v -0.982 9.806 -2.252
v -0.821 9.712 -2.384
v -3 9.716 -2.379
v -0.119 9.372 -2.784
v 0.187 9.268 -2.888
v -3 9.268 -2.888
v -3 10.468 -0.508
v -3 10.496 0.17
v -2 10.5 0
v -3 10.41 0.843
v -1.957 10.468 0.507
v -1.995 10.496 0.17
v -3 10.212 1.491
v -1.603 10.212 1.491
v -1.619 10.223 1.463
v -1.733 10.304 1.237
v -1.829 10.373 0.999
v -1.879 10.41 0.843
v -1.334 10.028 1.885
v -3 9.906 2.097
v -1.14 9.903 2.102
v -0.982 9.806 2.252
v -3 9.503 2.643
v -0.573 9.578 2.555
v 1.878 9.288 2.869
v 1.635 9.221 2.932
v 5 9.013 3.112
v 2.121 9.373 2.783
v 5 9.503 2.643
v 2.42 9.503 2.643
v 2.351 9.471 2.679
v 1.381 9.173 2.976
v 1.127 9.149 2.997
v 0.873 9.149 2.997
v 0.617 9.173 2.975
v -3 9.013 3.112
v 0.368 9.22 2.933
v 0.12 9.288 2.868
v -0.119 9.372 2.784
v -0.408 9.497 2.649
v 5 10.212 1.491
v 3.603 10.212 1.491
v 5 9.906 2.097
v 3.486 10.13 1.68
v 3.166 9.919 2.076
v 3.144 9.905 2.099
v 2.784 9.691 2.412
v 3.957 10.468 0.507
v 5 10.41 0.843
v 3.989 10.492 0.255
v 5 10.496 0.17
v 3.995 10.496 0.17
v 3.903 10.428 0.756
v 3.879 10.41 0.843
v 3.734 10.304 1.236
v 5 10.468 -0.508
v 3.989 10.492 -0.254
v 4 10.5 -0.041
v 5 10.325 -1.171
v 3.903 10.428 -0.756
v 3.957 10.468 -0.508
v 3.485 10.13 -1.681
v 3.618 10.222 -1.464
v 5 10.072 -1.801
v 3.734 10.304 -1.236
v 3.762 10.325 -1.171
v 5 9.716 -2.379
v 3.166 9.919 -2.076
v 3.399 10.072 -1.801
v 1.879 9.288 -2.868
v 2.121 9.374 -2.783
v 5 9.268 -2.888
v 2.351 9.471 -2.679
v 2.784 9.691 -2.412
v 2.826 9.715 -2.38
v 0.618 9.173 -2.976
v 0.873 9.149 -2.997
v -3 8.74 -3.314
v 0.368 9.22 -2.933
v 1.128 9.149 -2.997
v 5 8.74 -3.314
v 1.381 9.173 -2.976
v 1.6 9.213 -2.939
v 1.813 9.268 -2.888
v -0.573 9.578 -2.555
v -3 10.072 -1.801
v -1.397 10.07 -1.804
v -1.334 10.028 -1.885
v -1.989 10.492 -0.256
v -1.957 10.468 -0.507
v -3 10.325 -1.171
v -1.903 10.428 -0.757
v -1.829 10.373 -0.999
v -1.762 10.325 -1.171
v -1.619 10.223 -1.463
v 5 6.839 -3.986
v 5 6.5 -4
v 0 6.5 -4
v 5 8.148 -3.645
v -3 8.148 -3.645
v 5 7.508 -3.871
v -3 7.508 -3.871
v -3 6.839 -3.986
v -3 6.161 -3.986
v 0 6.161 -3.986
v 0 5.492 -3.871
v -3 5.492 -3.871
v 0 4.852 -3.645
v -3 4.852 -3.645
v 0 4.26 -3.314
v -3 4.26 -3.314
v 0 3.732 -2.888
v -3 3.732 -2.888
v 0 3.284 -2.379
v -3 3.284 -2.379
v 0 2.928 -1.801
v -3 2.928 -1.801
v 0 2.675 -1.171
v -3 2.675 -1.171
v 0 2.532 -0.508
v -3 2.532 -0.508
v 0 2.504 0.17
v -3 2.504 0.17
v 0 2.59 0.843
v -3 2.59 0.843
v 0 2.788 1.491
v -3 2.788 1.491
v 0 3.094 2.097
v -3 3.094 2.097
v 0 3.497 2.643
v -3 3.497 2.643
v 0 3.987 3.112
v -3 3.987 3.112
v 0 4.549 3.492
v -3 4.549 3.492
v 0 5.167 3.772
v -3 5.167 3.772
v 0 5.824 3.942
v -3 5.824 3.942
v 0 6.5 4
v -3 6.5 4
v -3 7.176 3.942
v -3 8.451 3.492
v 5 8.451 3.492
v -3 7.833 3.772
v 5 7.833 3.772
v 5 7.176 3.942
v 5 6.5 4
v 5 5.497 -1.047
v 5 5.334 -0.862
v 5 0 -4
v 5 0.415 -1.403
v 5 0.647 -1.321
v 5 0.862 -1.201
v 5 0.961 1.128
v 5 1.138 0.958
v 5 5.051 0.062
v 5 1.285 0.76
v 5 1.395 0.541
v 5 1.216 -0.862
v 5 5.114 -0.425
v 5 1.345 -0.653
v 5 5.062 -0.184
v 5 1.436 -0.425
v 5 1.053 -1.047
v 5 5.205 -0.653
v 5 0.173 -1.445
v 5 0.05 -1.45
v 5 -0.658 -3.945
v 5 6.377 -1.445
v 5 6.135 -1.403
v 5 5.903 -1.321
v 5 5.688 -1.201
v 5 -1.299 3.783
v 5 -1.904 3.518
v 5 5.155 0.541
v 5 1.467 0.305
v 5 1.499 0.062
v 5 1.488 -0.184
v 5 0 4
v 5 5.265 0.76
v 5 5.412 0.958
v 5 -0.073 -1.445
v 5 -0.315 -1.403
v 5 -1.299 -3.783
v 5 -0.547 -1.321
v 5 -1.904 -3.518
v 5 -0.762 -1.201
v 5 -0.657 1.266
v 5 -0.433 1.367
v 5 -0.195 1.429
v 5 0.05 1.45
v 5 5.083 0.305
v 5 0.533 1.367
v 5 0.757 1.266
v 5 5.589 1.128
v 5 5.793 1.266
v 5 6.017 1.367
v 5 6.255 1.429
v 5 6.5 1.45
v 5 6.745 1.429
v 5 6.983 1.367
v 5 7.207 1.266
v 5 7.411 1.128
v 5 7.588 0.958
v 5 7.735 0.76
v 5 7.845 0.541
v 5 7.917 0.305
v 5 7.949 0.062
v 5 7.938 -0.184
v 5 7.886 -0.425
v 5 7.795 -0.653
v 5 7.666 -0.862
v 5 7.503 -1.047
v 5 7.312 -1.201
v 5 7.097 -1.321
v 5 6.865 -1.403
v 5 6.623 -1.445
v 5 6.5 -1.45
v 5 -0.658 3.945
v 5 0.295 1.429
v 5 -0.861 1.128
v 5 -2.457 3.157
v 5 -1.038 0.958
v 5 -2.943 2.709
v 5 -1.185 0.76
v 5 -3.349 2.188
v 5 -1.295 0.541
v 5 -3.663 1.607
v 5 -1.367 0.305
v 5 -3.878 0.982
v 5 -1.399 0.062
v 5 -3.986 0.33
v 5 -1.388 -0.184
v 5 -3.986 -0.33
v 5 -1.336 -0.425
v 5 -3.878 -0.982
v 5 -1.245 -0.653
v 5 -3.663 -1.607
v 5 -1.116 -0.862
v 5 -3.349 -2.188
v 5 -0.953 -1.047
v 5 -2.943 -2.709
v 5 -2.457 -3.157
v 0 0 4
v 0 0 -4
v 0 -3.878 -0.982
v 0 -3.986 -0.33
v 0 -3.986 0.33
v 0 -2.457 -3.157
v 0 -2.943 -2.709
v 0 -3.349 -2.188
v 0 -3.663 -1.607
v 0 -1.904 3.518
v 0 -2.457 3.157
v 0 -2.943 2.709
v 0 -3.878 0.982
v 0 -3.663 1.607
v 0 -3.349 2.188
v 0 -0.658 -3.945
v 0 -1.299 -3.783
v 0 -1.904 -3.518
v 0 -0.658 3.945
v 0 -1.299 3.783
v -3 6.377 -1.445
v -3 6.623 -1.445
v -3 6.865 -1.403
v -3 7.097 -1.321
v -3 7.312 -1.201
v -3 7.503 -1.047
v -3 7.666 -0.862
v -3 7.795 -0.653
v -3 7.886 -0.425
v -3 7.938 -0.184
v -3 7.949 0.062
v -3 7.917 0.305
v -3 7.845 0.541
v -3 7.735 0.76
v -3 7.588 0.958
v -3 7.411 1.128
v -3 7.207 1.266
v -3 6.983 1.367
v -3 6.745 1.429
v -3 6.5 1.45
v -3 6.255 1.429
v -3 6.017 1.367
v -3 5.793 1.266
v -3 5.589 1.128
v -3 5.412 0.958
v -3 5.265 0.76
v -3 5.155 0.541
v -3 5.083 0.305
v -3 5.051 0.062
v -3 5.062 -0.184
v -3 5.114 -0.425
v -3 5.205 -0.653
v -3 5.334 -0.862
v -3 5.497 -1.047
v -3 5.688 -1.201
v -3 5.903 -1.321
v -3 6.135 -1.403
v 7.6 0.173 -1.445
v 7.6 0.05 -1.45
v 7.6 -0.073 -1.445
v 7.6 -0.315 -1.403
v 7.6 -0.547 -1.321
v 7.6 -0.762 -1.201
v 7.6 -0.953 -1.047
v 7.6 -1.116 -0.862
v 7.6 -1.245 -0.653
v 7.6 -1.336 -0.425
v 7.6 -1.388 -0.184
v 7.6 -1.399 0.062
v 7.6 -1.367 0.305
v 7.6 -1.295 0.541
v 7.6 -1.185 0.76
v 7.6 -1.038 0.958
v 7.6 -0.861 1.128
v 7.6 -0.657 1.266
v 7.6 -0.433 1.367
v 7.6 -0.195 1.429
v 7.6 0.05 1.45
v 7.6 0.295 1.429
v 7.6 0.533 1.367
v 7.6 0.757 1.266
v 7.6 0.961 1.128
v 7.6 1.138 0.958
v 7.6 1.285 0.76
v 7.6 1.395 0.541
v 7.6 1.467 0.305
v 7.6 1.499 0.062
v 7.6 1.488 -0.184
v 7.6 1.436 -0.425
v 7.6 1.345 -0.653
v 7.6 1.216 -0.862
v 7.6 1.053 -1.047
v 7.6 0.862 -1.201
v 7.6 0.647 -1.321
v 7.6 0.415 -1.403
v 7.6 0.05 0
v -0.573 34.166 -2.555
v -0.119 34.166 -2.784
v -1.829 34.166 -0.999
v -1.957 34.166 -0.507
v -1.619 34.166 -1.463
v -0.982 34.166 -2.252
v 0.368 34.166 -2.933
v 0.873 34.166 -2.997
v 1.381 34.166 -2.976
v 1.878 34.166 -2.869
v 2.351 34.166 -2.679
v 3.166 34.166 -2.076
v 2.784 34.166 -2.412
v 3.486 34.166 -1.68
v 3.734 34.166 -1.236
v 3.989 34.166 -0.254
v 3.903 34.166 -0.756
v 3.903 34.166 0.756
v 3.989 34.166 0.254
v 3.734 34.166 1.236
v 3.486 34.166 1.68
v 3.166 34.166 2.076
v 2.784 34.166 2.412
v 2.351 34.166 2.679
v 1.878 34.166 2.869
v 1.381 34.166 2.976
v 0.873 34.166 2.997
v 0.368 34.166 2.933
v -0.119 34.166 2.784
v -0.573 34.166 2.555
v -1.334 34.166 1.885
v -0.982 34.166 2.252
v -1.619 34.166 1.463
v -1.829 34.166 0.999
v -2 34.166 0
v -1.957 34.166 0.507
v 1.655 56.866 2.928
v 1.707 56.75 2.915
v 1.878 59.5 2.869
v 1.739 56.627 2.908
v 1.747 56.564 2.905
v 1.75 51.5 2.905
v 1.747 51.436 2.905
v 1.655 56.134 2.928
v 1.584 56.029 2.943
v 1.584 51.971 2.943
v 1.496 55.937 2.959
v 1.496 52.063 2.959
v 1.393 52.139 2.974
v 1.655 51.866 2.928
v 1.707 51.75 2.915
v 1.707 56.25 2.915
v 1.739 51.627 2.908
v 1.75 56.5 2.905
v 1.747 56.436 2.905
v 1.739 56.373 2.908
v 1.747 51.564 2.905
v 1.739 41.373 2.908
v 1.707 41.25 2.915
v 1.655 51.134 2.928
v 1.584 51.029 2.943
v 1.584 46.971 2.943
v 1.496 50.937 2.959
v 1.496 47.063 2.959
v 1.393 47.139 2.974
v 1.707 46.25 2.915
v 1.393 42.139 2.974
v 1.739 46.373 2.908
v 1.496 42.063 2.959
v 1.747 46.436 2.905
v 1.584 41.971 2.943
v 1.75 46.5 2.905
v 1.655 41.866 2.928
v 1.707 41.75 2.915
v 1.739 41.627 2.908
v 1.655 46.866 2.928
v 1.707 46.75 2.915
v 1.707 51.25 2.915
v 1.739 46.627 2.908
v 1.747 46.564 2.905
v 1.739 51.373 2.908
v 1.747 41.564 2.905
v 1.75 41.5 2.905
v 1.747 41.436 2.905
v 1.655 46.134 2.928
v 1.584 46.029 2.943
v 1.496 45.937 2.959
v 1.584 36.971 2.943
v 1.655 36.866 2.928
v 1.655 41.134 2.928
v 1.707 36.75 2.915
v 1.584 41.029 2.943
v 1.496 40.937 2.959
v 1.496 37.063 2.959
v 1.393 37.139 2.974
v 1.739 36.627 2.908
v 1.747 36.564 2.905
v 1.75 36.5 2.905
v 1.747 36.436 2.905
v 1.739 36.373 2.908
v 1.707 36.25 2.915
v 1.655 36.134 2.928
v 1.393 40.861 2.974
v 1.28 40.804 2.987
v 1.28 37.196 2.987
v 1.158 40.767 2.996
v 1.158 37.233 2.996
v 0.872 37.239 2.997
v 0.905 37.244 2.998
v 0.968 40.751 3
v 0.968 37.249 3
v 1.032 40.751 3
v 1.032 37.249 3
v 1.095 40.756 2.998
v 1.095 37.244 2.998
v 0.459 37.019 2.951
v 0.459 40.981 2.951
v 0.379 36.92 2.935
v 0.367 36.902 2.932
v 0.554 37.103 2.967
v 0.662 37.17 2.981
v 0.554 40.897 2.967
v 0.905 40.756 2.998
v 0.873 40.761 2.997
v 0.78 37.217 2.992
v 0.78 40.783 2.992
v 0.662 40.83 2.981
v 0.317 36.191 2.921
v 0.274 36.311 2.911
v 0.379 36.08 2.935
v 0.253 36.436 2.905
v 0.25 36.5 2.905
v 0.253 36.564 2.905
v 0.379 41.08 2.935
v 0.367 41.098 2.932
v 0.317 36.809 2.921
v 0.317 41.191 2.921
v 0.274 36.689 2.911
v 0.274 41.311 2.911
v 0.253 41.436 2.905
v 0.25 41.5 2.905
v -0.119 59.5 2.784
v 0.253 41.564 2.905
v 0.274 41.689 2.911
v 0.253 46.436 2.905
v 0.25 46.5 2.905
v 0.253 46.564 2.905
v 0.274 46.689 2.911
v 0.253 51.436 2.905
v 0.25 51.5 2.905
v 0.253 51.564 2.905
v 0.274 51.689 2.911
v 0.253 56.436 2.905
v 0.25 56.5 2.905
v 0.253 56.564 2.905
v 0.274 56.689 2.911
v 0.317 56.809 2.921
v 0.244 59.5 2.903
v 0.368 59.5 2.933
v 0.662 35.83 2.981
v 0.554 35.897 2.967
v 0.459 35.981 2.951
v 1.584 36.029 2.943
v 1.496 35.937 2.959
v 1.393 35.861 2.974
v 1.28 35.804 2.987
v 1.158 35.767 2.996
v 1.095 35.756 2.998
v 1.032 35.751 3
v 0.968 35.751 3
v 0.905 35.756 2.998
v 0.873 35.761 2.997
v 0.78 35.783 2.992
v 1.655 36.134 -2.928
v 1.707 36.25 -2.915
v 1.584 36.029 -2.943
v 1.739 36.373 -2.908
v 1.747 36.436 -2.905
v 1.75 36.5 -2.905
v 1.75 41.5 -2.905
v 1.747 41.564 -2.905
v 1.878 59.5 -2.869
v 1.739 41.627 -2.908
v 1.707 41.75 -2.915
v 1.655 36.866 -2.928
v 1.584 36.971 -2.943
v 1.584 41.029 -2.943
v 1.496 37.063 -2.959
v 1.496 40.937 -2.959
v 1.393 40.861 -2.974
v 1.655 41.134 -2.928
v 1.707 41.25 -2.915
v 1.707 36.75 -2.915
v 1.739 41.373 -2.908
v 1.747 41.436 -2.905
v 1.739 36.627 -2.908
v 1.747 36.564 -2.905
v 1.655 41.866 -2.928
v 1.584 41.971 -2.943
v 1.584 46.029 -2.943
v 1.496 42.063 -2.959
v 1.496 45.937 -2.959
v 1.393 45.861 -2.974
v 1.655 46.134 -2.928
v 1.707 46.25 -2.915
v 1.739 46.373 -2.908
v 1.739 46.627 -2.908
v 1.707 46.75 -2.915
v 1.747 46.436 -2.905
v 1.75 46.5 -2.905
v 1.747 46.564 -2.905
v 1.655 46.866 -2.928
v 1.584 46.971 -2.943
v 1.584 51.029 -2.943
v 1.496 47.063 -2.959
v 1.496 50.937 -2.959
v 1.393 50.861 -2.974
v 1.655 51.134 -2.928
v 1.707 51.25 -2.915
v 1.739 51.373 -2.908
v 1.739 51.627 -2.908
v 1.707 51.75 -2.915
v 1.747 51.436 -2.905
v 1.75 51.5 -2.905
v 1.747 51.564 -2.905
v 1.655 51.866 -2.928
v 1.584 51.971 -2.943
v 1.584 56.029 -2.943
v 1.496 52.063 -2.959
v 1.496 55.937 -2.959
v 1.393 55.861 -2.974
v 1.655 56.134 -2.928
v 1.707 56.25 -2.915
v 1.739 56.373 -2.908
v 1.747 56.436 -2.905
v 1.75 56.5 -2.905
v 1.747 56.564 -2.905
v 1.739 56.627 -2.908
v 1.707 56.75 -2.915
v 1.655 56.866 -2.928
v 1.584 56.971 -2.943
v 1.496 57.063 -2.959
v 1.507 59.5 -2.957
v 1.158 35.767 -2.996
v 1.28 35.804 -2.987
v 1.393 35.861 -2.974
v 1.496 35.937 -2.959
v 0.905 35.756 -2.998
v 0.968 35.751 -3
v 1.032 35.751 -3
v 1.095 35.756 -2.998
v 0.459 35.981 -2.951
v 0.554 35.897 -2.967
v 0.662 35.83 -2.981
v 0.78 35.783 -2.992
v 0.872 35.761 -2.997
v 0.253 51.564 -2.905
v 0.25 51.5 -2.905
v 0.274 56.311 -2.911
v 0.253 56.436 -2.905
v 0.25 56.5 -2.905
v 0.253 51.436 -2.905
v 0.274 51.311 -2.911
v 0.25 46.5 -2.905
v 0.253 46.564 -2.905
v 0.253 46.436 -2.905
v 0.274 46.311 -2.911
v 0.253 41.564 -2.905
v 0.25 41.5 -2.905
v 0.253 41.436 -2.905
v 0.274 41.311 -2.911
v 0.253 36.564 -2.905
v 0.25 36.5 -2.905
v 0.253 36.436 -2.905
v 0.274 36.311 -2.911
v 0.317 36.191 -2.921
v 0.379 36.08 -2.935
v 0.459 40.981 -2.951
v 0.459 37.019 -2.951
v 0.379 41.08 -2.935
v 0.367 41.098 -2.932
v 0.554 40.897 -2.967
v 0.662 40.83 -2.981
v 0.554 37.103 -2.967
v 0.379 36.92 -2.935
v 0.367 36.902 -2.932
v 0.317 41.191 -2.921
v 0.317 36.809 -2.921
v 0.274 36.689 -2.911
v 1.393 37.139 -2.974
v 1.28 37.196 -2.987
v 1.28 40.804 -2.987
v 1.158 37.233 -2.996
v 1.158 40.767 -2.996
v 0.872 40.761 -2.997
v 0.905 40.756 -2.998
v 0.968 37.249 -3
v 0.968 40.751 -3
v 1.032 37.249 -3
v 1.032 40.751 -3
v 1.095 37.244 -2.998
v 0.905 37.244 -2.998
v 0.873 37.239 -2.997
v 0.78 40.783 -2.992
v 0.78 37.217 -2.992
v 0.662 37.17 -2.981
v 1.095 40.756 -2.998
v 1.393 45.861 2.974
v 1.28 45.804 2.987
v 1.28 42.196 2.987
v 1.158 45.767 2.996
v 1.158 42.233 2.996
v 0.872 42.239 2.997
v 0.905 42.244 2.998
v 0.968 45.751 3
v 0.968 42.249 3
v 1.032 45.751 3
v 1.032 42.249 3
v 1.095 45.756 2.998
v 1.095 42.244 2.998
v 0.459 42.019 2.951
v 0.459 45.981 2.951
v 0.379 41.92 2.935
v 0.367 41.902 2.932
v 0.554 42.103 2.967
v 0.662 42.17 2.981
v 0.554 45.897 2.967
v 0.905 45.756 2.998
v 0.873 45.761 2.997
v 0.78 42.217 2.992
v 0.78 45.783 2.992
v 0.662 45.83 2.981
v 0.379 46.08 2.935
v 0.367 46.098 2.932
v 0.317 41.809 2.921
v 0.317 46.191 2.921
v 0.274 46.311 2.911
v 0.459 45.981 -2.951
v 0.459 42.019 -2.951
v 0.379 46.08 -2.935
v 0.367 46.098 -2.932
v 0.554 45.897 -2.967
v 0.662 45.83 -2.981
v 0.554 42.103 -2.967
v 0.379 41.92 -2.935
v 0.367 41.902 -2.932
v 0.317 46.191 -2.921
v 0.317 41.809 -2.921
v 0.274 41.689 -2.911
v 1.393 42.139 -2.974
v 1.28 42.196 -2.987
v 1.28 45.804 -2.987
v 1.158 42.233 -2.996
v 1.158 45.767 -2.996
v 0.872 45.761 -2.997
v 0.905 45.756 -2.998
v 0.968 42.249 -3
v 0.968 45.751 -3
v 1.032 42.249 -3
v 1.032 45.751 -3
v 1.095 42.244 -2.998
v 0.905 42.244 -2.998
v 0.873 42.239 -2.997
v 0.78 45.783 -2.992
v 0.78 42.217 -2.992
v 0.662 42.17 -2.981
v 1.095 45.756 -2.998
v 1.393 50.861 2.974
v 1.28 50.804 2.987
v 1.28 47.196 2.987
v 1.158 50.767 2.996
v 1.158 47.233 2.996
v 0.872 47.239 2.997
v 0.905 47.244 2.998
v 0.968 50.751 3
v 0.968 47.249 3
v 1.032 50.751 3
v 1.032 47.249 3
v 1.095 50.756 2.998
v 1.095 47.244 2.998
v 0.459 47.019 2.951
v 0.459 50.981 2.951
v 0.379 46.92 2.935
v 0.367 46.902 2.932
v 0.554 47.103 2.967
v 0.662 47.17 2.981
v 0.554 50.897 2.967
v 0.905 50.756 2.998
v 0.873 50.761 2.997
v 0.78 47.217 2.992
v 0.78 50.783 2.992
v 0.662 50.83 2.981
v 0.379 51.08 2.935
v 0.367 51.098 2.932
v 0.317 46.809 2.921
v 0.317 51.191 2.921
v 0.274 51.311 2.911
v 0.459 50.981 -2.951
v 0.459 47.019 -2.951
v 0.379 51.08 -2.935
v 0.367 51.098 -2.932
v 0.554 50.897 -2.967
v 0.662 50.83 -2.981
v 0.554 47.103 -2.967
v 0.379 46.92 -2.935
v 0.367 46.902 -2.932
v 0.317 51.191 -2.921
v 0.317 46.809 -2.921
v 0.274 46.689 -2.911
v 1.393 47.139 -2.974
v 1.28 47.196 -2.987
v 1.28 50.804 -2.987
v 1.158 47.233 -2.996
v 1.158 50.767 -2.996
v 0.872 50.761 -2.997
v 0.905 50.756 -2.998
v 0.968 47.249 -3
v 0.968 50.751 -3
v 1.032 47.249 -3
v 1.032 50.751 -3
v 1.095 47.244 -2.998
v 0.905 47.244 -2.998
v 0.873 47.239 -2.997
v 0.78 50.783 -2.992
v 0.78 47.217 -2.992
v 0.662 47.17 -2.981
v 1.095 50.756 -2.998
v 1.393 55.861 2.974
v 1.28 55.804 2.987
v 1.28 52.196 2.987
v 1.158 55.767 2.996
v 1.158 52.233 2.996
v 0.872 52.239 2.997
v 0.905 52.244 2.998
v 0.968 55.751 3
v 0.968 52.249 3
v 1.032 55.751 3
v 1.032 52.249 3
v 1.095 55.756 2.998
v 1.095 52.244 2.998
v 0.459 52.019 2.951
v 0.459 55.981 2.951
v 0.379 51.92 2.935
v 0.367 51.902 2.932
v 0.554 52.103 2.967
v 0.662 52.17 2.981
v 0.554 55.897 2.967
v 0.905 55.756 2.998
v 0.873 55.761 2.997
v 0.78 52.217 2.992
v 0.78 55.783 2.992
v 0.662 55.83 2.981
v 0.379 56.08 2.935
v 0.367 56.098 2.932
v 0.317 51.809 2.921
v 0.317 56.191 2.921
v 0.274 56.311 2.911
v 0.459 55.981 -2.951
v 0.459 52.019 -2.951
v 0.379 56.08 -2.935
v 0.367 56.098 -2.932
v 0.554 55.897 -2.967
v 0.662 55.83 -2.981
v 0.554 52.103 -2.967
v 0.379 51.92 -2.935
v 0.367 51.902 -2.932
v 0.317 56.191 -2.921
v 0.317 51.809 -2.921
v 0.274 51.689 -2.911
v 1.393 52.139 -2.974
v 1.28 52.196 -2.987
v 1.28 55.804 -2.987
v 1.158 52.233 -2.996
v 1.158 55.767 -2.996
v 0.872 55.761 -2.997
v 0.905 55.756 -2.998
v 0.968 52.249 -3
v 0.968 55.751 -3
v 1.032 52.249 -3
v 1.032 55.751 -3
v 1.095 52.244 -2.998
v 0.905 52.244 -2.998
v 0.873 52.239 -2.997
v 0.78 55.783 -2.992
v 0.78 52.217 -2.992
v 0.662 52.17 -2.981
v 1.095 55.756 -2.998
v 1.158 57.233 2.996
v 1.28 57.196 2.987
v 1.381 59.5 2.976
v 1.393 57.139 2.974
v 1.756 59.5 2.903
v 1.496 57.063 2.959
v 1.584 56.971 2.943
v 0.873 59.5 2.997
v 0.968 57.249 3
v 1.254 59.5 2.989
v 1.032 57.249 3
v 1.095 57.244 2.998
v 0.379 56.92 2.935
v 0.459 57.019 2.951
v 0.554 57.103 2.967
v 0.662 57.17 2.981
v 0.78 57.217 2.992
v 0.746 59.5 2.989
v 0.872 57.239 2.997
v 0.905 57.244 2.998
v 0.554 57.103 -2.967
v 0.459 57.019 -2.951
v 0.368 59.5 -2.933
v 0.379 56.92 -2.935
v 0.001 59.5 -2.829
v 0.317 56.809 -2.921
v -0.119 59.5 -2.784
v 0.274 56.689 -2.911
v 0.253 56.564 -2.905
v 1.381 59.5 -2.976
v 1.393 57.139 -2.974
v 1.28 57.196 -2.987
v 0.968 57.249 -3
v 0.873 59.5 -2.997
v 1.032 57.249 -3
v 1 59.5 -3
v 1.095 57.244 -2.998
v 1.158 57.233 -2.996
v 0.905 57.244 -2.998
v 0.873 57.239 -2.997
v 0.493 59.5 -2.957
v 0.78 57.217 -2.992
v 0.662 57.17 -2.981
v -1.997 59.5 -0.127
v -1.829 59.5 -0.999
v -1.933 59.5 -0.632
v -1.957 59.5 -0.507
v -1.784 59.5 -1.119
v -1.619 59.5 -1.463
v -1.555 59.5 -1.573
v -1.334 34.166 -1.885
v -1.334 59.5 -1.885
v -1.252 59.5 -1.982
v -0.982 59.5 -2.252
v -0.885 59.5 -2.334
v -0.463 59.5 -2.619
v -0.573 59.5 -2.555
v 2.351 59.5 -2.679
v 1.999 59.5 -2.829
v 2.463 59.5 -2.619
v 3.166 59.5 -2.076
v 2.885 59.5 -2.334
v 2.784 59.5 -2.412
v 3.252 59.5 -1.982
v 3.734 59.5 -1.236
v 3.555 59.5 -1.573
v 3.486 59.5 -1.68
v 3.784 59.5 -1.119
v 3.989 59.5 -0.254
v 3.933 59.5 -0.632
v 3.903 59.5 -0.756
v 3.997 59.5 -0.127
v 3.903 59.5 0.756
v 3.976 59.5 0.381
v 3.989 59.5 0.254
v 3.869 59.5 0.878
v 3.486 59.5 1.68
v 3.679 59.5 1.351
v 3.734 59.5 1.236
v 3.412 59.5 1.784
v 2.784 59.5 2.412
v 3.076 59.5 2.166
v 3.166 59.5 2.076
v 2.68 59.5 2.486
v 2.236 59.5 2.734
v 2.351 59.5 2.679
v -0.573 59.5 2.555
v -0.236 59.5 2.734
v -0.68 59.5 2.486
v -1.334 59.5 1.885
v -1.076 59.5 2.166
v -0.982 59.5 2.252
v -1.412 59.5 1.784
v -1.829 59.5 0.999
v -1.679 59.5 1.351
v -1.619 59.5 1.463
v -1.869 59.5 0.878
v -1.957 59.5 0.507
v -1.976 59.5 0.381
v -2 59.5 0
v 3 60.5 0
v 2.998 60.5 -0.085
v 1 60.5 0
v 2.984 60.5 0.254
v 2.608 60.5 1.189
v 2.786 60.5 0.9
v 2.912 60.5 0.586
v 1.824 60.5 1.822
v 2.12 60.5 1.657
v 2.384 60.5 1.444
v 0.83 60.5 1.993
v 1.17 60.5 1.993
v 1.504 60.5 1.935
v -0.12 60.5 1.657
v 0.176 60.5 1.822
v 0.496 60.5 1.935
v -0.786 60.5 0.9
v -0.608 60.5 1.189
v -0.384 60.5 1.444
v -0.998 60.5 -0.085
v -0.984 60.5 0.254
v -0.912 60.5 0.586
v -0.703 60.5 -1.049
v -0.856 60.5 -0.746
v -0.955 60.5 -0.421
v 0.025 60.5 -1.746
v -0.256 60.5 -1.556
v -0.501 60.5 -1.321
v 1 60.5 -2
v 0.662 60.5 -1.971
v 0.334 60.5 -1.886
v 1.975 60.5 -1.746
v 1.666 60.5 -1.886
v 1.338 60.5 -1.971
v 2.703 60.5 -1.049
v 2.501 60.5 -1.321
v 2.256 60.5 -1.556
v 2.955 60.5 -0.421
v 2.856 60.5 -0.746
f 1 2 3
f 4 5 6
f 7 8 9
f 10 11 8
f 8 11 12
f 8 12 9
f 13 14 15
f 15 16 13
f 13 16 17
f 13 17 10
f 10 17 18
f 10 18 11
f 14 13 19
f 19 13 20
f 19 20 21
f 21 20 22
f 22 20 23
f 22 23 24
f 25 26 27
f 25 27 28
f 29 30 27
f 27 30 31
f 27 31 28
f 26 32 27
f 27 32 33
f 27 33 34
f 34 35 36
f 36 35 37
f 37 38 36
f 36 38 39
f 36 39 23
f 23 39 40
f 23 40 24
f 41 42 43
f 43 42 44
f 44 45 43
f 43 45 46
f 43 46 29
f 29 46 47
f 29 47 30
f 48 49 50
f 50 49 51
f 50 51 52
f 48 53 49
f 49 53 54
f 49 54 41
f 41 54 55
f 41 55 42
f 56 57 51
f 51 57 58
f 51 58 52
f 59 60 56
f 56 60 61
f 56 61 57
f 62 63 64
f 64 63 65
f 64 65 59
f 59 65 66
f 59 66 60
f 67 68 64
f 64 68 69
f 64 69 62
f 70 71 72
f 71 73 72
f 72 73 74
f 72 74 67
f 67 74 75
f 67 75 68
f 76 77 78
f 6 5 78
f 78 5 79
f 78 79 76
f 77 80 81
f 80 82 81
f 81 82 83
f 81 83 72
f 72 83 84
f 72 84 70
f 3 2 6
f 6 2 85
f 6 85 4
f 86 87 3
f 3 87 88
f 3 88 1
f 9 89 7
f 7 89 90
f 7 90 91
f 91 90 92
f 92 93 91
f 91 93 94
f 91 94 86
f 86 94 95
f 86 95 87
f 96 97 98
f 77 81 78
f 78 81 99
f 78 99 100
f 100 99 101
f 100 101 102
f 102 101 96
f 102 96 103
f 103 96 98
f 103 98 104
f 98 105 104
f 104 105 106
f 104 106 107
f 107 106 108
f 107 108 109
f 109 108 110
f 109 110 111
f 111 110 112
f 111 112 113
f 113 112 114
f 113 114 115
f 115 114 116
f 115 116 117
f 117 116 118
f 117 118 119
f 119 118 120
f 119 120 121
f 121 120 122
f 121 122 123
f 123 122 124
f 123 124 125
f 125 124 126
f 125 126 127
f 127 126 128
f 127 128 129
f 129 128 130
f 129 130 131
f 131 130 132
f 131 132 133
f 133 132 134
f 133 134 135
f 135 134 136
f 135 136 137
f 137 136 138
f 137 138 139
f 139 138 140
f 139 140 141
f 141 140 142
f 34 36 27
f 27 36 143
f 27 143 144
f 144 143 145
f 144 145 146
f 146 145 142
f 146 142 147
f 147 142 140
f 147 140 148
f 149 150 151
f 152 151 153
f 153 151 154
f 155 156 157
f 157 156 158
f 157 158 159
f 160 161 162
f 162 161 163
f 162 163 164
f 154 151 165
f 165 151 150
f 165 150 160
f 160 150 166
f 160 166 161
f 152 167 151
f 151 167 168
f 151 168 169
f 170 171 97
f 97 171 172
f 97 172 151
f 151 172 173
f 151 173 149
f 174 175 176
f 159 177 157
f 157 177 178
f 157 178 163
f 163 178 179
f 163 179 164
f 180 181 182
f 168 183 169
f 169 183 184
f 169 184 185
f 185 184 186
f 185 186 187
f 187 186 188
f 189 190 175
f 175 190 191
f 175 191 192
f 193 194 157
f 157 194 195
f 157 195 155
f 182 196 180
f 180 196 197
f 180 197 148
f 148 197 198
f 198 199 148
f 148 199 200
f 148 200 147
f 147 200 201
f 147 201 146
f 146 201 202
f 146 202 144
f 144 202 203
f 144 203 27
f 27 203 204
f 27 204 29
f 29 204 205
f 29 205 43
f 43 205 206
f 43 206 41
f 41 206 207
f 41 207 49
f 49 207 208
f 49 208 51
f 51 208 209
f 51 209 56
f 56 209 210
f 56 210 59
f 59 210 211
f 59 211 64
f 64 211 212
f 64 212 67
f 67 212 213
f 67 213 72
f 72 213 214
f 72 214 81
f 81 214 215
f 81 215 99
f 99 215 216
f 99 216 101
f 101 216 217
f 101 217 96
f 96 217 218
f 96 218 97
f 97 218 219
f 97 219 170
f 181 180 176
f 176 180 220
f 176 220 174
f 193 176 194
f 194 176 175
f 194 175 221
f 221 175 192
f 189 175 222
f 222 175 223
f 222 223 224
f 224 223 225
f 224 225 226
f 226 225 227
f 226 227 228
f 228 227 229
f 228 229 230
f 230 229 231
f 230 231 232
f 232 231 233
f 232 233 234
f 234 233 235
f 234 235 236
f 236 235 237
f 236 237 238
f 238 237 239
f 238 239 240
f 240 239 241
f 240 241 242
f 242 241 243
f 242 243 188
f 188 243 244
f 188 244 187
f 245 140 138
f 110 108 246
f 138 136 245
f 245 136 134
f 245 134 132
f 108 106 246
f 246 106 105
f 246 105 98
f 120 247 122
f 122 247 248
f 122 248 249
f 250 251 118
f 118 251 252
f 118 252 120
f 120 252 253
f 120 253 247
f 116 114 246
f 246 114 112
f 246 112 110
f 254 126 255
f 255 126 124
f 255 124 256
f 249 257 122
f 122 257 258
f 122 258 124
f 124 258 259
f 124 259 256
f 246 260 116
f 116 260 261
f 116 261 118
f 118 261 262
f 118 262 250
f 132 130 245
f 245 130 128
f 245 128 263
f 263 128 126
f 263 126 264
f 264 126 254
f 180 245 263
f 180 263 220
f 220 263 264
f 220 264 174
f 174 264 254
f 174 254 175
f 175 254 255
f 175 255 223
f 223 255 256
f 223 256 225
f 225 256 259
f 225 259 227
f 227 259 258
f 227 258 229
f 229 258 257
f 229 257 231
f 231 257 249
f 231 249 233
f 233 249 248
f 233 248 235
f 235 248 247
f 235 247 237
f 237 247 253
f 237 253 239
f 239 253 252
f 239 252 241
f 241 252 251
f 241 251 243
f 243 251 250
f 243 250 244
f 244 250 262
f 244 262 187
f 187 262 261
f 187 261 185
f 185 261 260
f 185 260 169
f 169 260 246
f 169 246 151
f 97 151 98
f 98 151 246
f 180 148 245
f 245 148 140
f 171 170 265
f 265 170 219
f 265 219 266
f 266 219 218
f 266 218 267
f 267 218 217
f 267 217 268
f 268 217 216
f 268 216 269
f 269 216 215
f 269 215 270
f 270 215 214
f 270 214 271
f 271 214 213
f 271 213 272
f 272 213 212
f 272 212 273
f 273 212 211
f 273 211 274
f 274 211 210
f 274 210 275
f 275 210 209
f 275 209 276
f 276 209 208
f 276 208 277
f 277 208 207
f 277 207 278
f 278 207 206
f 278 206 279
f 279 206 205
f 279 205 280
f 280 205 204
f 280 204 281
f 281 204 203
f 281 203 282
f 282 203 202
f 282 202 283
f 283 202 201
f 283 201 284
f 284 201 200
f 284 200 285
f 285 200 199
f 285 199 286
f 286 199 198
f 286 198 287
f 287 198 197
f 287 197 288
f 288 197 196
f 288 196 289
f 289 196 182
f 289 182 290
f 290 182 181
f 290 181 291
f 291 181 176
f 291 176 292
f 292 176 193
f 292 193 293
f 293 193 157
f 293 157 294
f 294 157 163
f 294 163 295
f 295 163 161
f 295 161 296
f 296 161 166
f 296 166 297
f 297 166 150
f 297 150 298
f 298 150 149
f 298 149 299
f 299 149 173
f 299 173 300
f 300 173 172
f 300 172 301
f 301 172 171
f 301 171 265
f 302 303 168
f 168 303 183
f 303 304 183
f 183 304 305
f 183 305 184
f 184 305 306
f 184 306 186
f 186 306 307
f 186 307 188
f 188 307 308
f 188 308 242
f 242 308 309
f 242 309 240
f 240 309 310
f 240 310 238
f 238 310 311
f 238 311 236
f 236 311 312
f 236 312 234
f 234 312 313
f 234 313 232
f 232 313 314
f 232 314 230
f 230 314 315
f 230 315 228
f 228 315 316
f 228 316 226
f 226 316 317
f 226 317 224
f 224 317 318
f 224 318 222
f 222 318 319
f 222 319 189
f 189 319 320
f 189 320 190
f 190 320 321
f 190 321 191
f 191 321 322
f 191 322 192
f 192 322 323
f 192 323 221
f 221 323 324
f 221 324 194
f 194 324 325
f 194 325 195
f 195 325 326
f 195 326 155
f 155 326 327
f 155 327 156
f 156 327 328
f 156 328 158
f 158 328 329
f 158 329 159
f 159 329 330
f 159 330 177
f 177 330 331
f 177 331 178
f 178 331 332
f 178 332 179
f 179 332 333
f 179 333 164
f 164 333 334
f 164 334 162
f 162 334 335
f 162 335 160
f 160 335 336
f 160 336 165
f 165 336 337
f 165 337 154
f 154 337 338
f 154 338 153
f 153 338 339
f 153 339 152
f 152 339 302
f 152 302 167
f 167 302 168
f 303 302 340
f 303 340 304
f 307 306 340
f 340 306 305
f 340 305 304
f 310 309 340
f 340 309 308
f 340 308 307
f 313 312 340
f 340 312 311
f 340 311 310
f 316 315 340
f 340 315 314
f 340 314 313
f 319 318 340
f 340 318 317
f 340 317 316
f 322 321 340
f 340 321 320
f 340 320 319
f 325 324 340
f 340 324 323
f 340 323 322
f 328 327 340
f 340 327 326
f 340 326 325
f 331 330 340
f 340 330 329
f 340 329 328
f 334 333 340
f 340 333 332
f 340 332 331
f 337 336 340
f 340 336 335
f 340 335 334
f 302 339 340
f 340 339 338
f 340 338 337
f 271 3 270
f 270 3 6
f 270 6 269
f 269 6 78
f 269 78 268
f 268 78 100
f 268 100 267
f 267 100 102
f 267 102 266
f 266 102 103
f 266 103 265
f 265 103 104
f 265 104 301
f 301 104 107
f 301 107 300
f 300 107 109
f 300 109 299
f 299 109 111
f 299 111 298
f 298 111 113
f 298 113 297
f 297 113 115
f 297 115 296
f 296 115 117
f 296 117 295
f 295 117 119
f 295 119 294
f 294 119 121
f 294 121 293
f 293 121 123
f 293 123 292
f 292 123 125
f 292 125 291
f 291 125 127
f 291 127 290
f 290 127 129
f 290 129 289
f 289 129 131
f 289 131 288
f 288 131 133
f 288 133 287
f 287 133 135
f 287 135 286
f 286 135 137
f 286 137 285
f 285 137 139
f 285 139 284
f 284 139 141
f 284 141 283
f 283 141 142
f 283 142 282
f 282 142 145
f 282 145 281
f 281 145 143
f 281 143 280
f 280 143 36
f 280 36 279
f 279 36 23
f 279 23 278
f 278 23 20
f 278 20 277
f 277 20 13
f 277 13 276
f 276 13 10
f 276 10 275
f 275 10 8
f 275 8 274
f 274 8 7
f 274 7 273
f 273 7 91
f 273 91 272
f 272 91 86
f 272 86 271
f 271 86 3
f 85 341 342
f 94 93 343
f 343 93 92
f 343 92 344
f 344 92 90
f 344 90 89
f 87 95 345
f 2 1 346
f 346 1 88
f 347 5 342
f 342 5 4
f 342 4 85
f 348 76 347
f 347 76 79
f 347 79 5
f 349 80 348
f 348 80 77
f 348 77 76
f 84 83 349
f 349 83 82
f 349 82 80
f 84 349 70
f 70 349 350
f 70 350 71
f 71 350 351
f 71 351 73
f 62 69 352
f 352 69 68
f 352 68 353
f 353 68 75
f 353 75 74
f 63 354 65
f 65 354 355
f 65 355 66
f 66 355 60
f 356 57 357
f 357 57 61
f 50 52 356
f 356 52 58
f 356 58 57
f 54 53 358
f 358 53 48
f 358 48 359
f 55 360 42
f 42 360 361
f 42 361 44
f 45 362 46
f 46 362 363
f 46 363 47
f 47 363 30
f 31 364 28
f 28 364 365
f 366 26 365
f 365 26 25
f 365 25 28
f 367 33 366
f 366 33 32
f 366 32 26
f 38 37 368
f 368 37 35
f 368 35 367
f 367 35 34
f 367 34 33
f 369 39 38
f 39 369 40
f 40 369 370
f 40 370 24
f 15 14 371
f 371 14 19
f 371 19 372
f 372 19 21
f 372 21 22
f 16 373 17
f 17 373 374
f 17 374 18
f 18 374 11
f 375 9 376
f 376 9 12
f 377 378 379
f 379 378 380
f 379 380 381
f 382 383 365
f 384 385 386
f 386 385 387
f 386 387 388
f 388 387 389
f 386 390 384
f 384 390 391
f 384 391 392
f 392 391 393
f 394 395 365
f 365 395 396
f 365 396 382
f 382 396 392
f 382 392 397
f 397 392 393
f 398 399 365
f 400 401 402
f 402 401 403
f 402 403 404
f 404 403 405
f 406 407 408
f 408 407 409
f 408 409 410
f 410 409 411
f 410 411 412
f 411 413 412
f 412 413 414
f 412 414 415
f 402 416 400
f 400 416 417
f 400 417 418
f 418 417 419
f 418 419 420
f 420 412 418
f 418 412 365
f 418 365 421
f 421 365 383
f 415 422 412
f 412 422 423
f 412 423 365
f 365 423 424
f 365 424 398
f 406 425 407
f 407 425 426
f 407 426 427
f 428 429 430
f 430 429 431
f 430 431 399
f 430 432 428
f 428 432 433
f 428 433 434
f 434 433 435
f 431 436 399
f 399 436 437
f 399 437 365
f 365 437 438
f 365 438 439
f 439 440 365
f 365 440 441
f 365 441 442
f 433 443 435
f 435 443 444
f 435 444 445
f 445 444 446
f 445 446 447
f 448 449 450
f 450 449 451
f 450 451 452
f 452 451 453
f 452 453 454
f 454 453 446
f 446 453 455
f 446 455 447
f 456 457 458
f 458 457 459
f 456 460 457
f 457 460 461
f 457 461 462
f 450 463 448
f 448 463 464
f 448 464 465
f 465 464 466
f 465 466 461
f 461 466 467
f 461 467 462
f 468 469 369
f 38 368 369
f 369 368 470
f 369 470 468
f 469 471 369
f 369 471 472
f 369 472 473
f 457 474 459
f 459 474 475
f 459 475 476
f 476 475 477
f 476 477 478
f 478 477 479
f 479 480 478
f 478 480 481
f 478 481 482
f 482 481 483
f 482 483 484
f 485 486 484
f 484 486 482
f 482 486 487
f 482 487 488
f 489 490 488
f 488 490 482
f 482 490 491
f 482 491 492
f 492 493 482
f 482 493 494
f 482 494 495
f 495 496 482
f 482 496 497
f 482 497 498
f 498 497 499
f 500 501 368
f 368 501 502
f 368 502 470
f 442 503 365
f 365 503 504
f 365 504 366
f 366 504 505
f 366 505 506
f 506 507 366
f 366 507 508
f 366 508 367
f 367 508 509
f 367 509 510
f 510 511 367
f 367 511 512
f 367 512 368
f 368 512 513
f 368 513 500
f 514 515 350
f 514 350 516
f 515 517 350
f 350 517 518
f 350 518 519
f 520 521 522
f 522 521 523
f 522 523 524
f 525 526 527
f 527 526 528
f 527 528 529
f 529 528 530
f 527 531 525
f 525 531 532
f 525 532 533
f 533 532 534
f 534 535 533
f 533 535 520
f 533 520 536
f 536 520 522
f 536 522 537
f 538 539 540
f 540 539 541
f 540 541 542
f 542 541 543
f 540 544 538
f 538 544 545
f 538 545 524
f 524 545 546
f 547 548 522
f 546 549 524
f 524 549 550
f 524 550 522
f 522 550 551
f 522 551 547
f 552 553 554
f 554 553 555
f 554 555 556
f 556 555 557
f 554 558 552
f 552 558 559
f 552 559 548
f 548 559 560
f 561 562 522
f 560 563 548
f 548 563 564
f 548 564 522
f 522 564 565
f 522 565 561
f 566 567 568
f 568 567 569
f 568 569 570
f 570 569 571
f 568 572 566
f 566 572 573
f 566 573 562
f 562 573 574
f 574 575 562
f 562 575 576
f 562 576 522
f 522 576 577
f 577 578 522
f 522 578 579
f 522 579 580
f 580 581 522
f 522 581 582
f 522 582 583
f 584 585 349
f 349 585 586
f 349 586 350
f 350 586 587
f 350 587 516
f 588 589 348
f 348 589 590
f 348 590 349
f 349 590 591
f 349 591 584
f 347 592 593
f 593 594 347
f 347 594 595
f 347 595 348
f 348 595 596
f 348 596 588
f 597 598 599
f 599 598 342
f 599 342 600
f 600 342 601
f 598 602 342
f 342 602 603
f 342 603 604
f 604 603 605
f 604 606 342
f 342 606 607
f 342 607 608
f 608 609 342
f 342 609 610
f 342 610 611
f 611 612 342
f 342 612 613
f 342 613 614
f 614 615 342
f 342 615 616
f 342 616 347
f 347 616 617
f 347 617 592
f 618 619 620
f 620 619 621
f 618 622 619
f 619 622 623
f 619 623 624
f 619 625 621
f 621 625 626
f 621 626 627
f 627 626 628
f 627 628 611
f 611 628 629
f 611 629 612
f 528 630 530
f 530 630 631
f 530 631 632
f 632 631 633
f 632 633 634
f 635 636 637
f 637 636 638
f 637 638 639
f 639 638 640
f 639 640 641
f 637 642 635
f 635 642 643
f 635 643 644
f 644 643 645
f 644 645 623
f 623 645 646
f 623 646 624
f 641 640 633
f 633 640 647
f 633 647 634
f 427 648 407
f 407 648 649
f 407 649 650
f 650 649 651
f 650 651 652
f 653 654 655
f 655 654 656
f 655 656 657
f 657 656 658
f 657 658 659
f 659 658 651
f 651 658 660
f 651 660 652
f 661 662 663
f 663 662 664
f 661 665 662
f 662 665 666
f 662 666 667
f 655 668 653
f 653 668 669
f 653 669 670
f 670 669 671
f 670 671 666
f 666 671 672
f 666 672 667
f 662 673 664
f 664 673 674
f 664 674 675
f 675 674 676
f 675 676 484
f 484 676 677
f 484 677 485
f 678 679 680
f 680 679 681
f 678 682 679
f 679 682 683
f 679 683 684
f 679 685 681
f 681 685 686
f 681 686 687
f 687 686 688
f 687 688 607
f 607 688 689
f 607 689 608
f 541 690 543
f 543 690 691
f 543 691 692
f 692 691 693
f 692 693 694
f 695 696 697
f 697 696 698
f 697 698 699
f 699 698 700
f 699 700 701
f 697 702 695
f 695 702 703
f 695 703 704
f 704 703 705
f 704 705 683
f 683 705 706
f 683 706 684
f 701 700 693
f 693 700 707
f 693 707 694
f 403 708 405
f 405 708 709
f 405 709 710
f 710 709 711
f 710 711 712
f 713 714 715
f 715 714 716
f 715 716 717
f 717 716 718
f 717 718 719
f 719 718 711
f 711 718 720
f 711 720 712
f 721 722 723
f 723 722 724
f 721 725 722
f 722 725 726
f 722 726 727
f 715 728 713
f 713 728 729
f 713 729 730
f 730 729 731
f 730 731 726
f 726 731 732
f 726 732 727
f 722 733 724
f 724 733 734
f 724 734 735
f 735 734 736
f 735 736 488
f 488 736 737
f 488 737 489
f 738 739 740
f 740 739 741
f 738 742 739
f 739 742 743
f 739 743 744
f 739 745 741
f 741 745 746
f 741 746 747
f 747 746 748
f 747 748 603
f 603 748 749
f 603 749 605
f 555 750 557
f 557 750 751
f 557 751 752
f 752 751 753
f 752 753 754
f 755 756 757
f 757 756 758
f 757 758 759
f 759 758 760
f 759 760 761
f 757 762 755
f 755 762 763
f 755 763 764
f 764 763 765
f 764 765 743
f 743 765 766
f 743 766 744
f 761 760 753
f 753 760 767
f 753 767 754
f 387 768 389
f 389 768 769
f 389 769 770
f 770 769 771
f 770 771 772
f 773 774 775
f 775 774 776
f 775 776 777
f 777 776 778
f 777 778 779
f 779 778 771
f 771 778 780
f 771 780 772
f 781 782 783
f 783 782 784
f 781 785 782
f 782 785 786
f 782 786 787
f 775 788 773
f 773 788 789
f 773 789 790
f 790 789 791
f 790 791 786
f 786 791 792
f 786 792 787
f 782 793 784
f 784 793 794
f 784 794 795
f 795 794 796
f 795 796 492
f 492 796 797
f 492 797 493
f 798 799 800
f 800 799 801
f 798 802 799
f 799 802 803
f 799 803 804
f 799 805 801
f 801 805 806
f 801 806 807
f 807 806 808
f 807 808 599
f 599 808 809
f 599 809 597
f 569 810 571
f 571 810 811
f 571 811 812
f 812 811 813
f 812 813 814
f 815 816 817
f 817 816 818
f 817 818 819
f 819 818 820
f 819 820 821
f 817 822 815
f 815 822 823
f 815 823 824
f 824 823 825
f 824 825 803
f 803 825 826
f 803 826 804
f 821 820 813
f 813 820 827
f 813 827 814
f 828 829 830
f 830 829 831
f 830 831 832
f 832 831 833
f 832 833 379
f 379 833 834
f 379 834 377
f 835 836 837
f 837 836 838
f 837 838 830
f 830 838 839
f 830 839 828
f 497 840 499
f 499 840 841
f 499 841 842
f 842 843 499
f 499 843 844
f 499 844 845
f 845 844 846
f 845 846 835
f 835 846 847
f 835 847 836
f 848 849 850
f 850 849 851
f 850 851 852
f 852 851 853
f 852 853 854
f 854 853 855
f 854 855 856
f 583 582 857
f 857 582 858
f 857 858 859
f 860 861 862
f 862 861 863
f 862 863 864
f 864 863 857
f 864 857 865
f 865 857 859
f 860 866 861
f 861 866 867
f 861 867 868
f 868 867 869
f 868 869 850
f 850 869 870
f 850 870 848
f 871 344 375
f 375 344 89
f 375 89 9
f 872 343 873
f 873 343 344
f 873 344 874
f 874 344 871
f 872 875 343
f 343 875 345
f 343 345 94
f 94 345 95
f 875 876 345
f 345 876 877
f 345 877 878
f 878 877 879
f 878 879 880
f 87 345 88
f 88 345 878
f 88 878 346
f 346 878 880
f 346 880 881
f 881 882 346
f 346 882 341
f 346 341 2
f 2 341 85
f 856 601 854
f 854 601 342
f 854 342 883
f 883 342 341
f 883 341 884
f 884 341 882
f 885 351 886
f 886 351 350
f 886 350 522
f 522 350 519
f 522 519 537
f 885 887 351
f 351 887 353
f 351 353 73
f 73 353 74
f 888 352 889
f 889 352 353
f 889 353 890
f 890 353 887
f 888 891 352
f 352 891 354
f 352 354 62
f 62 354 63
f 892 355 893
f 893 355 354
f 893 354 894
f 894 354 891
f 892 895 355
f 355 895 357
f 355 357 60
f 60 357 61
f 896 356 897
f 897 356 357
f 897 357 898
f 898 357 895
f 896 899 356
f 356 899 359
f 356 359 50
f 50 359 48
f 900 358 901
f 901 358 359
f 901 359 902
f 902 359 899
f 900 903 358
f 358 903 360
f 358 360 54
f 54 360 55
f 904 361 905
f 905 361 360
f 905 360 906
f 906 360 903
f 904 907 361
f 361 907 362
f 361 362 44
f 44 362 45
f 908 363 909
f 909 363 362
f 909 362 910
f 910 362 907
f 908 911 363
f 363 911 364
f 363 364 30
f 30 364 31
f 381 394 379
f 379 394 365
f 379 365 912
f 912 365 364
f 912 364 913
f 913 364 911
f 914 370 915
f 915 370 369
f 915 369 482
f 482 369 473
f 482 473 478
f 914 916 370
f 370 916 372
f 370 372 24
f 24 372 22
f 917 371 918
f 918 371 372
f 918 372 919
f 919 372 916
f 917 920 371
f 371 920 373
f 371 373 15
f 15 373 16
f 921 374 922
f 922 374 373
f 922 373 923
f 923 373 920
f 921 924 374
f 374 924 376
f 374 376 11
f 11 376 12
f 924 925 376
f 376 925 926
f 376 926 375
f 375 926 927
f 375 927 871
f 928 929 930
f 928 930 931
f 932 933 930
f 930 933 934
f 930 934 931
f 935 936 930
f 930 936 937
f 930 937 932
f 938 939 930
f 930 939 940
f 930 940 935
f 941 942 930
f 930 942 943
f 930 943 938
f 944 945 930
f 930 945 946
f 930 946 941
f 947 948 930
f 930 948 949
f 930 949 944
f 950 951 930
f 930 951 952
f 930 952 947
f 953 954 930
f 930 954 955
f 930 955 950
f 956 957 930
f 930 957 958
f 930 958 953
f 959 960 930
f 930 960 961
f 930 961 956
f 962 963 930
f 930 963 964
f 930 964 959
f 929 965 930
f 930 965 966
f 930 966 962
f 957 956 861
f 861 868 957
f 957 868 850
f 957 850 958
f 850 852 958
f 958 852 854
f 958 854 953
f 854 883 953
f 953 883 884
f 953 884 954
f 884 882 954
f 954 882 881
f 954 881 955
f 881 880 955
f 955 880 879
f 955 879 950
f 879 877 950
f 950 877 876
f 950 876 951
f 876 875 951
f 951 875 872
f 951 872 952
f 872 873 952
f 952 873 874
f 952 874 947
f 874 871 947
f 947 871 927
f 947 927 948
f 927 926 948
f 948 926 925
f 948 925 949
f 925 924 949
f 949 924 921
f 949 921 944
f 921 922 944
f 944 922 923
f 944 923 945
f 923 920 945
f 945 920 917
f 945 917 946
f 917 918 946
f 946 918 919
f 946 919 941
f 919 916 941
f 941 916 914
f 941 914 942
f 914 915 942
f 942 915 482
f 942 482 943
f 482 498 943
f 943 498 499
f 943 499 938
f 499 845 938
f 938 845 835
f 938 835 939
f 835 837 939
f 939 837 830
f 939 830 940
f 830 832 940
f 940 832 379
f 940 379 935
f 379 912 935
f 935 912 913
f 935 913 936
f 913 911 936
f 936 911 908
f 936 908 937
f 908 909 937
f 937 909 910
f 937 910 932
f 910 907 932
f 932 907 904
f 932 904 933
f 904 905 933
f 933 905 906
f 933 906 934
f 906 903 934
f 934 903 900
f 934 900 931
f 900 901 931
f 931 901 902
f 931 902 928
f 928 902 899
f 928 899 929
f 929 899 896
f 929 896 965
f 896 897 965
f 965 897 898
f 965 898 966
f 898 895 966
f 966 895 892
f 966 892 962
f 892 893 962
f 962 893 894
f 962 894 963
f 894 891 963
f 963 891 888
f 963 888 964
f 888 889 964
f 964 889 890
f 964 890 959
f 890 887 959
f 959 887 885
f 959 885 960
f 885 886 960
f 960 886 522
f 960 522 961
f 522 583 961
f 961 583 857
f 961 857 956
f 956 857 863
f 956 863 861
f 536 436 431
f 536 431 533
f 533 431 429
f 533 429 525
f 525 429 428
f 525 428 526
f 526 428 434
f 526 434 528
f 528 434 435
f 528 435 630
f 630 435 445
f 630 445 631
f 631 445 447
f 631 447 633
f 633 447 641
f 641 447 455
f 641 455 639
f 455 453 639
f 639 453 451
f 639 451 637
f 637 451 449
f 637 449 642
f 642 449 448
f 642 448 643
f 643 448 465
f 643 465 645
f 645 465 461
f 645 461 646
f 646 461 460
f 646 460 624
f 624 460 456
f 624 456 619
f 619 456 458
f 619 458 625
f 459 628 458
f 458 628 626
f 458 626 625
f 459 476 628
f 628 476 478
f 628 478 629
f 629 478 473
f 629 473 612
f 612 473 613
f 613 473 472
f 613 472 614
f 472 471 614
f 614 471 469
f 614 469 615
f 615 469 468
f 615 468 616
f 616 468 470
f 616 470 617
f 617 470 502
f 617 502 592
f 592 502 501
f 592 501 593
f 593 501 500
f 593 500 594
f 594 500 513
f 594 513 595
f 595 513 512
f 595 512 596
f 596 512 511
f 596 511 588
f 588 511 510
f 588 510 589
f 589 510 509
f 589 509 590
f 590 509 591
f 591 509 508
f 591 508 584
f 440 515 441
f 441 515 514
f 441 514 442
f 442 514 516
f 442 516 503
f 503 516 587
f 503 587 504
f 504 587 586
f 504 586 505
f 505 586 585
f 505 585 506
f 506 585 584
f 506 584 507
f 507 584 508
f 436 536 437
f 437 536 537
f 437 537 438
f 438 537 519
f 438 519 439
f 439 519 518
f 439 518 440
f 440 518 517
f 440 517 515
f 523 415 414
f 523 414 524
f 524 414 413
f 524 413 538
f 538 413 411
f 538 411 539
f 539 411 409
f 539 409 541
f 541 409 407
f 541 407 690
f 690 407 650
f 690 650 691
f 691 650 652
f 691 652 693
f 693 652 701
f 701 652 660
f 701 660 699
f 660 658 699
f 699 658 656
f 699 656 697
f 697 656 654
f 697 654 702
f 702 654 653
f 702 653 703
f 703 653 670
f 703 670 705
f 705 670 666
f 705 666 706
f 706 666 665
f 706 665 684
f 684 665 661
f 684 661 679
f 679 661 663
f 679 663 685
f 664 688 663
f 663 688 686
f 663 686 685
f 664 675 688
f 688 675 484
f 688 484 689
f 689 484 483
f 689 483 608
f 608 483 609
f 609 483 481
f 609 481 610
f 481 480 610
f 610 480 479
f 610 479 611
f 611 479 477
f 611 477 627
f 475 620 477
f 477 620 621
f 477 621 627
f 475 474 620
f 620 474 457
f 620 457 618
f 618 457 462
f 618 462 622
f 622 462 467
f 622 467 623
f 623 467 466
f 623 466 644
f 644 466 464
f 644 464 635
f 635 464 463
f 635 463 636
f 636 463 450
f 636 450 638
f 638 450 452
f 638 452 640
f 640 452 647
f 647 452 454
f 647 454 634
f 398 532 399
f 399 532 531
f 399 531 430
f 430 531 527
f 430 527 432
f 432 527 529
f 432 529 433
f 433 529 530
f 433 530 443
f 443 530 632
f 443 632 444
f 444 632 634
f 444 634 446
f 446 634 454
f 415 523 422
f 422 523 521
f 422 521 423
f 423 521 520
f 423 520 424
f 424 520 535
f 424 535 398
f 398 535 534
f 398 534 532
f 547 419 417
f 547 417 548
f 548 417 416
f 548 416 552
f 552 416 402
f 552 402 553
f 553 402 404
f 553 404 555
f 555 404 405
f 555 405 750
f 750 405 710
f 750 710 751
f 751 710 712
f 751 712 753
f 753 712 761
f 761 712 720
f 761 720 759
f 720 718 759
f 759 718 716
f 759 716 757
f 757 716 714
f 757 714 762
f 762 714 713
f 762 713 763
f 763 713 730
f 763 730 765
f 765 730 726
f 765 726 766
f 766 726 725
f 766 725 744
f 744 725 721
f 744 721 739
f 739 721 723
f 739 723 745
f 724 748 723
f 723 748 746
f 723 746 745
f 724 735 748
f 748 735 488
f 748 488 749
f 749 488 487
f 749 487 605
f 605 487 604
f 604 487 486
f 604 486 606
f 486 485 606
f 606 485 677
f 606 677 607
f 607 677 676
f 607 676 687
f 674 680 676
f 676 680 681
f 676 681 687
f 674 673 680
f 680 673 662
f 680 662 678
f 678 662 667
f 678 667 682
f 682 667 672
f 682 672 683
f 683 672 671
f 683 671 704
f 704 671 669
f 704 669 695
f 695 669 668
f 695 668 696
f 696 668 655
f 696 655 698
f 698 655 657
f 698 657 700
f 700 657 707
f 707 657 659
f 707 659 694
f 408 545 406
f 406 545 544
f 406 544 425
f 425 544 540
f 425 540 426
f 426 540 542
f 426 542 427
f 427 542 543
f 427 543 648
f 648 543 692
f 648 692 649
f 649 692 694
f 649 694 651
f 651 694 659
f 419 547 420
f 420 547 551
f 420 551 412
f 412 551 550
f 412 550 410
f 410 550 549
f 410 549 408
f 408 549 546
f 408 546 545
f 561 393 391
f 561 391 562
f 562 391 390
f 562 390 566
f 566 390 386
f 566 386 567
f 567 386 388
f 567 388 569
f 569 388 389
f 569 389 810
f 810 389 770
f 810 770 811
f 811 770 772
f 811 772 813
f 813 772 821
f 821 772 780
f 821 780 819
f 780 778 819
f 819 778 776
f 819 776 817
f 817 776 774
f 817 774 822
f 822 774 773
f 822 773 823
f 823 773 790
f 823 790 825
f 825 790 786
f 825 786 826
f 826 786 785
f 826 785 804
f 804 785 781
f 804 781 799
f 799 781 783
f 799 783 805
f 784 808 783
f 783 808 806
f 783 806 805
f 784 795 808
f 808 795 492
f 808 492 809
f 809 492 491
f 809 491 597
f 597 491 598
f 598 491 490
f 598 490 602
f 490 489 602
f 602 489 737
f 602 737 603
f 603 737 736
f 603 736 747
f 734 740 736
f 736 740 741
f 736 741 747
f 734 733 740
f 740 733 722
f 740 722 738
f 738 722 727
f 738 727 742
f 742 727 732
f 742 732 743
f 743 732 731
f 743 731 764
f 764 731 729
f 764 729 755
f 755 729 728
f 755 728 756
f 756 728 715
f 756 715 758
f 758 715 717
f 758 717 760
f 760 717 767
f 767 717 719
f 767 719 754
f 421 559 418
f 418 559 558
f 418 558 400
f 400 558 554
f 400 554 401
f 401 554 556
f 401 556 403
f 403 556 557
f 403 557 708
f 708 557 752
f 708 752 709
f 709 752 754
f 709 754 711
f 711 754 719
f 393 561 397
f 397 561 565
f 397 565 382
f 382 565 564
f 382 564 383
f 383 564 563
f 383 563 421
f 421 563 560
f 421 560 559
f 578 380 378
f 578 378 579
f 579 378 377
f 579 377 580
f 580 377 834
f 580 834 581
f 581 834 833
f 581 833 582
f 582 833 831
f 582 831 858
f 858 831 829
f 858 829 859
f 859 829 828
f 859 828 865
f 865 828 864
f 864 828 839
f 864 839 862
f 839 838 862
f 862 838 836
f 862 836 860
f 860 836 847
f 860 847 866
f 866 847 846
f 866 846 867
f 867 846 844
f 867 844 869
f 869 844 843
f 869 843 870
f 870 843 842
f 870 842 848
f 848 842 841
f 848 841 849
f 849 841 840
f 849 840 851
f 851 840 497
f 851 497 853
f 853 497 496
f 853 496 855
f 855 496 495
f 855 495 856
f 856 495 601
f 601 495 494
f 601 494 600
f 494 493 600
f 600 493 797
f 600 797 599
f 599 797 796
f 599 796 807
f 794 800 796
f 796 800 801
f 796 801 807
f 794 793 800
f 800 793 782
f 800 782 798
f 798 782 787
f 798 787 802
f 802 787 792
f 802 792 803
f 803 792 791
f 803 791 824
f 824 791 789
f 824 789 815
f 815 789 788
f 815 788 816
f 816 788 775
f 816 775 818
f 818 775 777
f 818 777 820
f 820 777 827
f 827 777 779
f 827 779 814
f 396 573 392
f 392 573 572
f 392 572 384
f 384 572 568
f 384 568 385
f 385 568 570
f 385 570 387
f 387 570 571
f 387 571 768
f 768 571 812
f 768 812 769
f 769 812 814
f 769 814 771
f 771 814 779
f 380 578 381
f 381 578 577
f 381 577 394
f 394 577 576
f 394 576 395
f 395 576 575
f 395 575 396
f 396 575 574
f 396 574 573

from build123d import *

# Parameters (mm, degrees)
SKETCH1_R               = 1.45
BOSS_EXTRUDE1_DEPTH     = 5
SKETCH2_R               = 1.45
BOSS_EXTRUDE2_DEPTH     = 2.6
SKETCH3_R               = 1.45
BOSS_EXTRUDE3_DEPTH     = 3
SKETCH5_W               = 3
SKETCH5_H               = 52.5
CHAMFER1_SIZE           = 1
SKETCH6_R               = 0.75
CUT_EXTRUDE1_DEPTH      = 5.0000001
CUT_EXTRUDE1_DEPTH_BACK = 5.0000001


with BuildPart() as part:
    # Sketch1 → Boss-Extrude1 (new body)
    with BuildSketch(Plane(origin=(0, 0, 0), x_dir=(0, 0, -1), z_dir=(1, 0, 0))):
        with BuildLine():
            Line((-4, 0), (-4, 6.5))
            ThreePointArc((-4, 6.5), (0, 10.5), (4, 6.5))
            Line((4, 6.5), (4, 0))
            ThreePointArc((4, 0), (0, -4), (-4, 0))
        make_face()
        with Locations((0, 6.5)):
            Circle(SKETCH1_R, mode=Mode.SUBTRACT)
    extrude(amount=BOSS_EXTRUDE1_DEPTH)

    # Sketch2 → Boss-Extrude2 (add)
    with BuildSketch(Plane(origin=(5, 0, 0), x_dir=(0, 0, -1), z_dir=(1, 0, 0))):
        with Locations((0, 0.05)):
            Circle(SKETCH2_R)
    extrude(amount=BOSS_EXTRUDE2_DEPTH)

    # Sketch3 → Boss-Extrude3 (add)
    with BuildSketch(Plane.ZY):
        with BuildLine():
            ThreePointArc((-4, 6.5), (0, 2.5), (4, 6.5))
            ThreePointArc((4, 6.5), (0, 10.5), (-4, 6.5))
        make_face()
        with Locations((0, 6.5)):
            Circle(SKETCH3_R, mode=Mode.SUBTRACT)
    extrude(amount=BOSS_EXTRUDE3_DEPTH)

    # Sketch5 → Revolve2 (revolve)
    with BuildSketch(Plane.XY):
        with Locations((2.5, 34.25)):
            Rectangle(SKETCH5_W, SKETCH5_H)
    revolve(axis=Axis((1, 60.5, 0), (0, -1, 0)))

    # Chamfer1
    chamfer1_edges = [part.edges().sort_by_distance(p)[0] for p in [
        (-2, 60.5, 0),
    ]]
    chamfer(chamfer1_edges, length=CHAMFER1_SIZE)

    # Sketch6 → Cut-Extrude1 (cut, two sides)
    with BuildSketch(Plane.XY) as cut_extrude1_sk:
        with Locations((1, 56.5)):
            Circle(SKETCH6_R)
        with Locations((1, 51.5)):
            Circle(SKETCH6_R)
        with Locations((1, 46.5)):
            Circle(SKETCH6_R)
        with Locations((1, 41.5)):
            Circle(SKETCH6_R)
        with Locations((1, 36.5)):
            Circle(SKETCH6_R)
    extrude(amount=CUT_EXTRUDE1_DEPTH, mode=Mode.SUBTRACT)
    extrude(cut_extrude1_sk.sketch, amount=-CUT_EXTRUDE1_DEPTH_BACK, mode=Mode.SUBTRACT)


solid = part.part
